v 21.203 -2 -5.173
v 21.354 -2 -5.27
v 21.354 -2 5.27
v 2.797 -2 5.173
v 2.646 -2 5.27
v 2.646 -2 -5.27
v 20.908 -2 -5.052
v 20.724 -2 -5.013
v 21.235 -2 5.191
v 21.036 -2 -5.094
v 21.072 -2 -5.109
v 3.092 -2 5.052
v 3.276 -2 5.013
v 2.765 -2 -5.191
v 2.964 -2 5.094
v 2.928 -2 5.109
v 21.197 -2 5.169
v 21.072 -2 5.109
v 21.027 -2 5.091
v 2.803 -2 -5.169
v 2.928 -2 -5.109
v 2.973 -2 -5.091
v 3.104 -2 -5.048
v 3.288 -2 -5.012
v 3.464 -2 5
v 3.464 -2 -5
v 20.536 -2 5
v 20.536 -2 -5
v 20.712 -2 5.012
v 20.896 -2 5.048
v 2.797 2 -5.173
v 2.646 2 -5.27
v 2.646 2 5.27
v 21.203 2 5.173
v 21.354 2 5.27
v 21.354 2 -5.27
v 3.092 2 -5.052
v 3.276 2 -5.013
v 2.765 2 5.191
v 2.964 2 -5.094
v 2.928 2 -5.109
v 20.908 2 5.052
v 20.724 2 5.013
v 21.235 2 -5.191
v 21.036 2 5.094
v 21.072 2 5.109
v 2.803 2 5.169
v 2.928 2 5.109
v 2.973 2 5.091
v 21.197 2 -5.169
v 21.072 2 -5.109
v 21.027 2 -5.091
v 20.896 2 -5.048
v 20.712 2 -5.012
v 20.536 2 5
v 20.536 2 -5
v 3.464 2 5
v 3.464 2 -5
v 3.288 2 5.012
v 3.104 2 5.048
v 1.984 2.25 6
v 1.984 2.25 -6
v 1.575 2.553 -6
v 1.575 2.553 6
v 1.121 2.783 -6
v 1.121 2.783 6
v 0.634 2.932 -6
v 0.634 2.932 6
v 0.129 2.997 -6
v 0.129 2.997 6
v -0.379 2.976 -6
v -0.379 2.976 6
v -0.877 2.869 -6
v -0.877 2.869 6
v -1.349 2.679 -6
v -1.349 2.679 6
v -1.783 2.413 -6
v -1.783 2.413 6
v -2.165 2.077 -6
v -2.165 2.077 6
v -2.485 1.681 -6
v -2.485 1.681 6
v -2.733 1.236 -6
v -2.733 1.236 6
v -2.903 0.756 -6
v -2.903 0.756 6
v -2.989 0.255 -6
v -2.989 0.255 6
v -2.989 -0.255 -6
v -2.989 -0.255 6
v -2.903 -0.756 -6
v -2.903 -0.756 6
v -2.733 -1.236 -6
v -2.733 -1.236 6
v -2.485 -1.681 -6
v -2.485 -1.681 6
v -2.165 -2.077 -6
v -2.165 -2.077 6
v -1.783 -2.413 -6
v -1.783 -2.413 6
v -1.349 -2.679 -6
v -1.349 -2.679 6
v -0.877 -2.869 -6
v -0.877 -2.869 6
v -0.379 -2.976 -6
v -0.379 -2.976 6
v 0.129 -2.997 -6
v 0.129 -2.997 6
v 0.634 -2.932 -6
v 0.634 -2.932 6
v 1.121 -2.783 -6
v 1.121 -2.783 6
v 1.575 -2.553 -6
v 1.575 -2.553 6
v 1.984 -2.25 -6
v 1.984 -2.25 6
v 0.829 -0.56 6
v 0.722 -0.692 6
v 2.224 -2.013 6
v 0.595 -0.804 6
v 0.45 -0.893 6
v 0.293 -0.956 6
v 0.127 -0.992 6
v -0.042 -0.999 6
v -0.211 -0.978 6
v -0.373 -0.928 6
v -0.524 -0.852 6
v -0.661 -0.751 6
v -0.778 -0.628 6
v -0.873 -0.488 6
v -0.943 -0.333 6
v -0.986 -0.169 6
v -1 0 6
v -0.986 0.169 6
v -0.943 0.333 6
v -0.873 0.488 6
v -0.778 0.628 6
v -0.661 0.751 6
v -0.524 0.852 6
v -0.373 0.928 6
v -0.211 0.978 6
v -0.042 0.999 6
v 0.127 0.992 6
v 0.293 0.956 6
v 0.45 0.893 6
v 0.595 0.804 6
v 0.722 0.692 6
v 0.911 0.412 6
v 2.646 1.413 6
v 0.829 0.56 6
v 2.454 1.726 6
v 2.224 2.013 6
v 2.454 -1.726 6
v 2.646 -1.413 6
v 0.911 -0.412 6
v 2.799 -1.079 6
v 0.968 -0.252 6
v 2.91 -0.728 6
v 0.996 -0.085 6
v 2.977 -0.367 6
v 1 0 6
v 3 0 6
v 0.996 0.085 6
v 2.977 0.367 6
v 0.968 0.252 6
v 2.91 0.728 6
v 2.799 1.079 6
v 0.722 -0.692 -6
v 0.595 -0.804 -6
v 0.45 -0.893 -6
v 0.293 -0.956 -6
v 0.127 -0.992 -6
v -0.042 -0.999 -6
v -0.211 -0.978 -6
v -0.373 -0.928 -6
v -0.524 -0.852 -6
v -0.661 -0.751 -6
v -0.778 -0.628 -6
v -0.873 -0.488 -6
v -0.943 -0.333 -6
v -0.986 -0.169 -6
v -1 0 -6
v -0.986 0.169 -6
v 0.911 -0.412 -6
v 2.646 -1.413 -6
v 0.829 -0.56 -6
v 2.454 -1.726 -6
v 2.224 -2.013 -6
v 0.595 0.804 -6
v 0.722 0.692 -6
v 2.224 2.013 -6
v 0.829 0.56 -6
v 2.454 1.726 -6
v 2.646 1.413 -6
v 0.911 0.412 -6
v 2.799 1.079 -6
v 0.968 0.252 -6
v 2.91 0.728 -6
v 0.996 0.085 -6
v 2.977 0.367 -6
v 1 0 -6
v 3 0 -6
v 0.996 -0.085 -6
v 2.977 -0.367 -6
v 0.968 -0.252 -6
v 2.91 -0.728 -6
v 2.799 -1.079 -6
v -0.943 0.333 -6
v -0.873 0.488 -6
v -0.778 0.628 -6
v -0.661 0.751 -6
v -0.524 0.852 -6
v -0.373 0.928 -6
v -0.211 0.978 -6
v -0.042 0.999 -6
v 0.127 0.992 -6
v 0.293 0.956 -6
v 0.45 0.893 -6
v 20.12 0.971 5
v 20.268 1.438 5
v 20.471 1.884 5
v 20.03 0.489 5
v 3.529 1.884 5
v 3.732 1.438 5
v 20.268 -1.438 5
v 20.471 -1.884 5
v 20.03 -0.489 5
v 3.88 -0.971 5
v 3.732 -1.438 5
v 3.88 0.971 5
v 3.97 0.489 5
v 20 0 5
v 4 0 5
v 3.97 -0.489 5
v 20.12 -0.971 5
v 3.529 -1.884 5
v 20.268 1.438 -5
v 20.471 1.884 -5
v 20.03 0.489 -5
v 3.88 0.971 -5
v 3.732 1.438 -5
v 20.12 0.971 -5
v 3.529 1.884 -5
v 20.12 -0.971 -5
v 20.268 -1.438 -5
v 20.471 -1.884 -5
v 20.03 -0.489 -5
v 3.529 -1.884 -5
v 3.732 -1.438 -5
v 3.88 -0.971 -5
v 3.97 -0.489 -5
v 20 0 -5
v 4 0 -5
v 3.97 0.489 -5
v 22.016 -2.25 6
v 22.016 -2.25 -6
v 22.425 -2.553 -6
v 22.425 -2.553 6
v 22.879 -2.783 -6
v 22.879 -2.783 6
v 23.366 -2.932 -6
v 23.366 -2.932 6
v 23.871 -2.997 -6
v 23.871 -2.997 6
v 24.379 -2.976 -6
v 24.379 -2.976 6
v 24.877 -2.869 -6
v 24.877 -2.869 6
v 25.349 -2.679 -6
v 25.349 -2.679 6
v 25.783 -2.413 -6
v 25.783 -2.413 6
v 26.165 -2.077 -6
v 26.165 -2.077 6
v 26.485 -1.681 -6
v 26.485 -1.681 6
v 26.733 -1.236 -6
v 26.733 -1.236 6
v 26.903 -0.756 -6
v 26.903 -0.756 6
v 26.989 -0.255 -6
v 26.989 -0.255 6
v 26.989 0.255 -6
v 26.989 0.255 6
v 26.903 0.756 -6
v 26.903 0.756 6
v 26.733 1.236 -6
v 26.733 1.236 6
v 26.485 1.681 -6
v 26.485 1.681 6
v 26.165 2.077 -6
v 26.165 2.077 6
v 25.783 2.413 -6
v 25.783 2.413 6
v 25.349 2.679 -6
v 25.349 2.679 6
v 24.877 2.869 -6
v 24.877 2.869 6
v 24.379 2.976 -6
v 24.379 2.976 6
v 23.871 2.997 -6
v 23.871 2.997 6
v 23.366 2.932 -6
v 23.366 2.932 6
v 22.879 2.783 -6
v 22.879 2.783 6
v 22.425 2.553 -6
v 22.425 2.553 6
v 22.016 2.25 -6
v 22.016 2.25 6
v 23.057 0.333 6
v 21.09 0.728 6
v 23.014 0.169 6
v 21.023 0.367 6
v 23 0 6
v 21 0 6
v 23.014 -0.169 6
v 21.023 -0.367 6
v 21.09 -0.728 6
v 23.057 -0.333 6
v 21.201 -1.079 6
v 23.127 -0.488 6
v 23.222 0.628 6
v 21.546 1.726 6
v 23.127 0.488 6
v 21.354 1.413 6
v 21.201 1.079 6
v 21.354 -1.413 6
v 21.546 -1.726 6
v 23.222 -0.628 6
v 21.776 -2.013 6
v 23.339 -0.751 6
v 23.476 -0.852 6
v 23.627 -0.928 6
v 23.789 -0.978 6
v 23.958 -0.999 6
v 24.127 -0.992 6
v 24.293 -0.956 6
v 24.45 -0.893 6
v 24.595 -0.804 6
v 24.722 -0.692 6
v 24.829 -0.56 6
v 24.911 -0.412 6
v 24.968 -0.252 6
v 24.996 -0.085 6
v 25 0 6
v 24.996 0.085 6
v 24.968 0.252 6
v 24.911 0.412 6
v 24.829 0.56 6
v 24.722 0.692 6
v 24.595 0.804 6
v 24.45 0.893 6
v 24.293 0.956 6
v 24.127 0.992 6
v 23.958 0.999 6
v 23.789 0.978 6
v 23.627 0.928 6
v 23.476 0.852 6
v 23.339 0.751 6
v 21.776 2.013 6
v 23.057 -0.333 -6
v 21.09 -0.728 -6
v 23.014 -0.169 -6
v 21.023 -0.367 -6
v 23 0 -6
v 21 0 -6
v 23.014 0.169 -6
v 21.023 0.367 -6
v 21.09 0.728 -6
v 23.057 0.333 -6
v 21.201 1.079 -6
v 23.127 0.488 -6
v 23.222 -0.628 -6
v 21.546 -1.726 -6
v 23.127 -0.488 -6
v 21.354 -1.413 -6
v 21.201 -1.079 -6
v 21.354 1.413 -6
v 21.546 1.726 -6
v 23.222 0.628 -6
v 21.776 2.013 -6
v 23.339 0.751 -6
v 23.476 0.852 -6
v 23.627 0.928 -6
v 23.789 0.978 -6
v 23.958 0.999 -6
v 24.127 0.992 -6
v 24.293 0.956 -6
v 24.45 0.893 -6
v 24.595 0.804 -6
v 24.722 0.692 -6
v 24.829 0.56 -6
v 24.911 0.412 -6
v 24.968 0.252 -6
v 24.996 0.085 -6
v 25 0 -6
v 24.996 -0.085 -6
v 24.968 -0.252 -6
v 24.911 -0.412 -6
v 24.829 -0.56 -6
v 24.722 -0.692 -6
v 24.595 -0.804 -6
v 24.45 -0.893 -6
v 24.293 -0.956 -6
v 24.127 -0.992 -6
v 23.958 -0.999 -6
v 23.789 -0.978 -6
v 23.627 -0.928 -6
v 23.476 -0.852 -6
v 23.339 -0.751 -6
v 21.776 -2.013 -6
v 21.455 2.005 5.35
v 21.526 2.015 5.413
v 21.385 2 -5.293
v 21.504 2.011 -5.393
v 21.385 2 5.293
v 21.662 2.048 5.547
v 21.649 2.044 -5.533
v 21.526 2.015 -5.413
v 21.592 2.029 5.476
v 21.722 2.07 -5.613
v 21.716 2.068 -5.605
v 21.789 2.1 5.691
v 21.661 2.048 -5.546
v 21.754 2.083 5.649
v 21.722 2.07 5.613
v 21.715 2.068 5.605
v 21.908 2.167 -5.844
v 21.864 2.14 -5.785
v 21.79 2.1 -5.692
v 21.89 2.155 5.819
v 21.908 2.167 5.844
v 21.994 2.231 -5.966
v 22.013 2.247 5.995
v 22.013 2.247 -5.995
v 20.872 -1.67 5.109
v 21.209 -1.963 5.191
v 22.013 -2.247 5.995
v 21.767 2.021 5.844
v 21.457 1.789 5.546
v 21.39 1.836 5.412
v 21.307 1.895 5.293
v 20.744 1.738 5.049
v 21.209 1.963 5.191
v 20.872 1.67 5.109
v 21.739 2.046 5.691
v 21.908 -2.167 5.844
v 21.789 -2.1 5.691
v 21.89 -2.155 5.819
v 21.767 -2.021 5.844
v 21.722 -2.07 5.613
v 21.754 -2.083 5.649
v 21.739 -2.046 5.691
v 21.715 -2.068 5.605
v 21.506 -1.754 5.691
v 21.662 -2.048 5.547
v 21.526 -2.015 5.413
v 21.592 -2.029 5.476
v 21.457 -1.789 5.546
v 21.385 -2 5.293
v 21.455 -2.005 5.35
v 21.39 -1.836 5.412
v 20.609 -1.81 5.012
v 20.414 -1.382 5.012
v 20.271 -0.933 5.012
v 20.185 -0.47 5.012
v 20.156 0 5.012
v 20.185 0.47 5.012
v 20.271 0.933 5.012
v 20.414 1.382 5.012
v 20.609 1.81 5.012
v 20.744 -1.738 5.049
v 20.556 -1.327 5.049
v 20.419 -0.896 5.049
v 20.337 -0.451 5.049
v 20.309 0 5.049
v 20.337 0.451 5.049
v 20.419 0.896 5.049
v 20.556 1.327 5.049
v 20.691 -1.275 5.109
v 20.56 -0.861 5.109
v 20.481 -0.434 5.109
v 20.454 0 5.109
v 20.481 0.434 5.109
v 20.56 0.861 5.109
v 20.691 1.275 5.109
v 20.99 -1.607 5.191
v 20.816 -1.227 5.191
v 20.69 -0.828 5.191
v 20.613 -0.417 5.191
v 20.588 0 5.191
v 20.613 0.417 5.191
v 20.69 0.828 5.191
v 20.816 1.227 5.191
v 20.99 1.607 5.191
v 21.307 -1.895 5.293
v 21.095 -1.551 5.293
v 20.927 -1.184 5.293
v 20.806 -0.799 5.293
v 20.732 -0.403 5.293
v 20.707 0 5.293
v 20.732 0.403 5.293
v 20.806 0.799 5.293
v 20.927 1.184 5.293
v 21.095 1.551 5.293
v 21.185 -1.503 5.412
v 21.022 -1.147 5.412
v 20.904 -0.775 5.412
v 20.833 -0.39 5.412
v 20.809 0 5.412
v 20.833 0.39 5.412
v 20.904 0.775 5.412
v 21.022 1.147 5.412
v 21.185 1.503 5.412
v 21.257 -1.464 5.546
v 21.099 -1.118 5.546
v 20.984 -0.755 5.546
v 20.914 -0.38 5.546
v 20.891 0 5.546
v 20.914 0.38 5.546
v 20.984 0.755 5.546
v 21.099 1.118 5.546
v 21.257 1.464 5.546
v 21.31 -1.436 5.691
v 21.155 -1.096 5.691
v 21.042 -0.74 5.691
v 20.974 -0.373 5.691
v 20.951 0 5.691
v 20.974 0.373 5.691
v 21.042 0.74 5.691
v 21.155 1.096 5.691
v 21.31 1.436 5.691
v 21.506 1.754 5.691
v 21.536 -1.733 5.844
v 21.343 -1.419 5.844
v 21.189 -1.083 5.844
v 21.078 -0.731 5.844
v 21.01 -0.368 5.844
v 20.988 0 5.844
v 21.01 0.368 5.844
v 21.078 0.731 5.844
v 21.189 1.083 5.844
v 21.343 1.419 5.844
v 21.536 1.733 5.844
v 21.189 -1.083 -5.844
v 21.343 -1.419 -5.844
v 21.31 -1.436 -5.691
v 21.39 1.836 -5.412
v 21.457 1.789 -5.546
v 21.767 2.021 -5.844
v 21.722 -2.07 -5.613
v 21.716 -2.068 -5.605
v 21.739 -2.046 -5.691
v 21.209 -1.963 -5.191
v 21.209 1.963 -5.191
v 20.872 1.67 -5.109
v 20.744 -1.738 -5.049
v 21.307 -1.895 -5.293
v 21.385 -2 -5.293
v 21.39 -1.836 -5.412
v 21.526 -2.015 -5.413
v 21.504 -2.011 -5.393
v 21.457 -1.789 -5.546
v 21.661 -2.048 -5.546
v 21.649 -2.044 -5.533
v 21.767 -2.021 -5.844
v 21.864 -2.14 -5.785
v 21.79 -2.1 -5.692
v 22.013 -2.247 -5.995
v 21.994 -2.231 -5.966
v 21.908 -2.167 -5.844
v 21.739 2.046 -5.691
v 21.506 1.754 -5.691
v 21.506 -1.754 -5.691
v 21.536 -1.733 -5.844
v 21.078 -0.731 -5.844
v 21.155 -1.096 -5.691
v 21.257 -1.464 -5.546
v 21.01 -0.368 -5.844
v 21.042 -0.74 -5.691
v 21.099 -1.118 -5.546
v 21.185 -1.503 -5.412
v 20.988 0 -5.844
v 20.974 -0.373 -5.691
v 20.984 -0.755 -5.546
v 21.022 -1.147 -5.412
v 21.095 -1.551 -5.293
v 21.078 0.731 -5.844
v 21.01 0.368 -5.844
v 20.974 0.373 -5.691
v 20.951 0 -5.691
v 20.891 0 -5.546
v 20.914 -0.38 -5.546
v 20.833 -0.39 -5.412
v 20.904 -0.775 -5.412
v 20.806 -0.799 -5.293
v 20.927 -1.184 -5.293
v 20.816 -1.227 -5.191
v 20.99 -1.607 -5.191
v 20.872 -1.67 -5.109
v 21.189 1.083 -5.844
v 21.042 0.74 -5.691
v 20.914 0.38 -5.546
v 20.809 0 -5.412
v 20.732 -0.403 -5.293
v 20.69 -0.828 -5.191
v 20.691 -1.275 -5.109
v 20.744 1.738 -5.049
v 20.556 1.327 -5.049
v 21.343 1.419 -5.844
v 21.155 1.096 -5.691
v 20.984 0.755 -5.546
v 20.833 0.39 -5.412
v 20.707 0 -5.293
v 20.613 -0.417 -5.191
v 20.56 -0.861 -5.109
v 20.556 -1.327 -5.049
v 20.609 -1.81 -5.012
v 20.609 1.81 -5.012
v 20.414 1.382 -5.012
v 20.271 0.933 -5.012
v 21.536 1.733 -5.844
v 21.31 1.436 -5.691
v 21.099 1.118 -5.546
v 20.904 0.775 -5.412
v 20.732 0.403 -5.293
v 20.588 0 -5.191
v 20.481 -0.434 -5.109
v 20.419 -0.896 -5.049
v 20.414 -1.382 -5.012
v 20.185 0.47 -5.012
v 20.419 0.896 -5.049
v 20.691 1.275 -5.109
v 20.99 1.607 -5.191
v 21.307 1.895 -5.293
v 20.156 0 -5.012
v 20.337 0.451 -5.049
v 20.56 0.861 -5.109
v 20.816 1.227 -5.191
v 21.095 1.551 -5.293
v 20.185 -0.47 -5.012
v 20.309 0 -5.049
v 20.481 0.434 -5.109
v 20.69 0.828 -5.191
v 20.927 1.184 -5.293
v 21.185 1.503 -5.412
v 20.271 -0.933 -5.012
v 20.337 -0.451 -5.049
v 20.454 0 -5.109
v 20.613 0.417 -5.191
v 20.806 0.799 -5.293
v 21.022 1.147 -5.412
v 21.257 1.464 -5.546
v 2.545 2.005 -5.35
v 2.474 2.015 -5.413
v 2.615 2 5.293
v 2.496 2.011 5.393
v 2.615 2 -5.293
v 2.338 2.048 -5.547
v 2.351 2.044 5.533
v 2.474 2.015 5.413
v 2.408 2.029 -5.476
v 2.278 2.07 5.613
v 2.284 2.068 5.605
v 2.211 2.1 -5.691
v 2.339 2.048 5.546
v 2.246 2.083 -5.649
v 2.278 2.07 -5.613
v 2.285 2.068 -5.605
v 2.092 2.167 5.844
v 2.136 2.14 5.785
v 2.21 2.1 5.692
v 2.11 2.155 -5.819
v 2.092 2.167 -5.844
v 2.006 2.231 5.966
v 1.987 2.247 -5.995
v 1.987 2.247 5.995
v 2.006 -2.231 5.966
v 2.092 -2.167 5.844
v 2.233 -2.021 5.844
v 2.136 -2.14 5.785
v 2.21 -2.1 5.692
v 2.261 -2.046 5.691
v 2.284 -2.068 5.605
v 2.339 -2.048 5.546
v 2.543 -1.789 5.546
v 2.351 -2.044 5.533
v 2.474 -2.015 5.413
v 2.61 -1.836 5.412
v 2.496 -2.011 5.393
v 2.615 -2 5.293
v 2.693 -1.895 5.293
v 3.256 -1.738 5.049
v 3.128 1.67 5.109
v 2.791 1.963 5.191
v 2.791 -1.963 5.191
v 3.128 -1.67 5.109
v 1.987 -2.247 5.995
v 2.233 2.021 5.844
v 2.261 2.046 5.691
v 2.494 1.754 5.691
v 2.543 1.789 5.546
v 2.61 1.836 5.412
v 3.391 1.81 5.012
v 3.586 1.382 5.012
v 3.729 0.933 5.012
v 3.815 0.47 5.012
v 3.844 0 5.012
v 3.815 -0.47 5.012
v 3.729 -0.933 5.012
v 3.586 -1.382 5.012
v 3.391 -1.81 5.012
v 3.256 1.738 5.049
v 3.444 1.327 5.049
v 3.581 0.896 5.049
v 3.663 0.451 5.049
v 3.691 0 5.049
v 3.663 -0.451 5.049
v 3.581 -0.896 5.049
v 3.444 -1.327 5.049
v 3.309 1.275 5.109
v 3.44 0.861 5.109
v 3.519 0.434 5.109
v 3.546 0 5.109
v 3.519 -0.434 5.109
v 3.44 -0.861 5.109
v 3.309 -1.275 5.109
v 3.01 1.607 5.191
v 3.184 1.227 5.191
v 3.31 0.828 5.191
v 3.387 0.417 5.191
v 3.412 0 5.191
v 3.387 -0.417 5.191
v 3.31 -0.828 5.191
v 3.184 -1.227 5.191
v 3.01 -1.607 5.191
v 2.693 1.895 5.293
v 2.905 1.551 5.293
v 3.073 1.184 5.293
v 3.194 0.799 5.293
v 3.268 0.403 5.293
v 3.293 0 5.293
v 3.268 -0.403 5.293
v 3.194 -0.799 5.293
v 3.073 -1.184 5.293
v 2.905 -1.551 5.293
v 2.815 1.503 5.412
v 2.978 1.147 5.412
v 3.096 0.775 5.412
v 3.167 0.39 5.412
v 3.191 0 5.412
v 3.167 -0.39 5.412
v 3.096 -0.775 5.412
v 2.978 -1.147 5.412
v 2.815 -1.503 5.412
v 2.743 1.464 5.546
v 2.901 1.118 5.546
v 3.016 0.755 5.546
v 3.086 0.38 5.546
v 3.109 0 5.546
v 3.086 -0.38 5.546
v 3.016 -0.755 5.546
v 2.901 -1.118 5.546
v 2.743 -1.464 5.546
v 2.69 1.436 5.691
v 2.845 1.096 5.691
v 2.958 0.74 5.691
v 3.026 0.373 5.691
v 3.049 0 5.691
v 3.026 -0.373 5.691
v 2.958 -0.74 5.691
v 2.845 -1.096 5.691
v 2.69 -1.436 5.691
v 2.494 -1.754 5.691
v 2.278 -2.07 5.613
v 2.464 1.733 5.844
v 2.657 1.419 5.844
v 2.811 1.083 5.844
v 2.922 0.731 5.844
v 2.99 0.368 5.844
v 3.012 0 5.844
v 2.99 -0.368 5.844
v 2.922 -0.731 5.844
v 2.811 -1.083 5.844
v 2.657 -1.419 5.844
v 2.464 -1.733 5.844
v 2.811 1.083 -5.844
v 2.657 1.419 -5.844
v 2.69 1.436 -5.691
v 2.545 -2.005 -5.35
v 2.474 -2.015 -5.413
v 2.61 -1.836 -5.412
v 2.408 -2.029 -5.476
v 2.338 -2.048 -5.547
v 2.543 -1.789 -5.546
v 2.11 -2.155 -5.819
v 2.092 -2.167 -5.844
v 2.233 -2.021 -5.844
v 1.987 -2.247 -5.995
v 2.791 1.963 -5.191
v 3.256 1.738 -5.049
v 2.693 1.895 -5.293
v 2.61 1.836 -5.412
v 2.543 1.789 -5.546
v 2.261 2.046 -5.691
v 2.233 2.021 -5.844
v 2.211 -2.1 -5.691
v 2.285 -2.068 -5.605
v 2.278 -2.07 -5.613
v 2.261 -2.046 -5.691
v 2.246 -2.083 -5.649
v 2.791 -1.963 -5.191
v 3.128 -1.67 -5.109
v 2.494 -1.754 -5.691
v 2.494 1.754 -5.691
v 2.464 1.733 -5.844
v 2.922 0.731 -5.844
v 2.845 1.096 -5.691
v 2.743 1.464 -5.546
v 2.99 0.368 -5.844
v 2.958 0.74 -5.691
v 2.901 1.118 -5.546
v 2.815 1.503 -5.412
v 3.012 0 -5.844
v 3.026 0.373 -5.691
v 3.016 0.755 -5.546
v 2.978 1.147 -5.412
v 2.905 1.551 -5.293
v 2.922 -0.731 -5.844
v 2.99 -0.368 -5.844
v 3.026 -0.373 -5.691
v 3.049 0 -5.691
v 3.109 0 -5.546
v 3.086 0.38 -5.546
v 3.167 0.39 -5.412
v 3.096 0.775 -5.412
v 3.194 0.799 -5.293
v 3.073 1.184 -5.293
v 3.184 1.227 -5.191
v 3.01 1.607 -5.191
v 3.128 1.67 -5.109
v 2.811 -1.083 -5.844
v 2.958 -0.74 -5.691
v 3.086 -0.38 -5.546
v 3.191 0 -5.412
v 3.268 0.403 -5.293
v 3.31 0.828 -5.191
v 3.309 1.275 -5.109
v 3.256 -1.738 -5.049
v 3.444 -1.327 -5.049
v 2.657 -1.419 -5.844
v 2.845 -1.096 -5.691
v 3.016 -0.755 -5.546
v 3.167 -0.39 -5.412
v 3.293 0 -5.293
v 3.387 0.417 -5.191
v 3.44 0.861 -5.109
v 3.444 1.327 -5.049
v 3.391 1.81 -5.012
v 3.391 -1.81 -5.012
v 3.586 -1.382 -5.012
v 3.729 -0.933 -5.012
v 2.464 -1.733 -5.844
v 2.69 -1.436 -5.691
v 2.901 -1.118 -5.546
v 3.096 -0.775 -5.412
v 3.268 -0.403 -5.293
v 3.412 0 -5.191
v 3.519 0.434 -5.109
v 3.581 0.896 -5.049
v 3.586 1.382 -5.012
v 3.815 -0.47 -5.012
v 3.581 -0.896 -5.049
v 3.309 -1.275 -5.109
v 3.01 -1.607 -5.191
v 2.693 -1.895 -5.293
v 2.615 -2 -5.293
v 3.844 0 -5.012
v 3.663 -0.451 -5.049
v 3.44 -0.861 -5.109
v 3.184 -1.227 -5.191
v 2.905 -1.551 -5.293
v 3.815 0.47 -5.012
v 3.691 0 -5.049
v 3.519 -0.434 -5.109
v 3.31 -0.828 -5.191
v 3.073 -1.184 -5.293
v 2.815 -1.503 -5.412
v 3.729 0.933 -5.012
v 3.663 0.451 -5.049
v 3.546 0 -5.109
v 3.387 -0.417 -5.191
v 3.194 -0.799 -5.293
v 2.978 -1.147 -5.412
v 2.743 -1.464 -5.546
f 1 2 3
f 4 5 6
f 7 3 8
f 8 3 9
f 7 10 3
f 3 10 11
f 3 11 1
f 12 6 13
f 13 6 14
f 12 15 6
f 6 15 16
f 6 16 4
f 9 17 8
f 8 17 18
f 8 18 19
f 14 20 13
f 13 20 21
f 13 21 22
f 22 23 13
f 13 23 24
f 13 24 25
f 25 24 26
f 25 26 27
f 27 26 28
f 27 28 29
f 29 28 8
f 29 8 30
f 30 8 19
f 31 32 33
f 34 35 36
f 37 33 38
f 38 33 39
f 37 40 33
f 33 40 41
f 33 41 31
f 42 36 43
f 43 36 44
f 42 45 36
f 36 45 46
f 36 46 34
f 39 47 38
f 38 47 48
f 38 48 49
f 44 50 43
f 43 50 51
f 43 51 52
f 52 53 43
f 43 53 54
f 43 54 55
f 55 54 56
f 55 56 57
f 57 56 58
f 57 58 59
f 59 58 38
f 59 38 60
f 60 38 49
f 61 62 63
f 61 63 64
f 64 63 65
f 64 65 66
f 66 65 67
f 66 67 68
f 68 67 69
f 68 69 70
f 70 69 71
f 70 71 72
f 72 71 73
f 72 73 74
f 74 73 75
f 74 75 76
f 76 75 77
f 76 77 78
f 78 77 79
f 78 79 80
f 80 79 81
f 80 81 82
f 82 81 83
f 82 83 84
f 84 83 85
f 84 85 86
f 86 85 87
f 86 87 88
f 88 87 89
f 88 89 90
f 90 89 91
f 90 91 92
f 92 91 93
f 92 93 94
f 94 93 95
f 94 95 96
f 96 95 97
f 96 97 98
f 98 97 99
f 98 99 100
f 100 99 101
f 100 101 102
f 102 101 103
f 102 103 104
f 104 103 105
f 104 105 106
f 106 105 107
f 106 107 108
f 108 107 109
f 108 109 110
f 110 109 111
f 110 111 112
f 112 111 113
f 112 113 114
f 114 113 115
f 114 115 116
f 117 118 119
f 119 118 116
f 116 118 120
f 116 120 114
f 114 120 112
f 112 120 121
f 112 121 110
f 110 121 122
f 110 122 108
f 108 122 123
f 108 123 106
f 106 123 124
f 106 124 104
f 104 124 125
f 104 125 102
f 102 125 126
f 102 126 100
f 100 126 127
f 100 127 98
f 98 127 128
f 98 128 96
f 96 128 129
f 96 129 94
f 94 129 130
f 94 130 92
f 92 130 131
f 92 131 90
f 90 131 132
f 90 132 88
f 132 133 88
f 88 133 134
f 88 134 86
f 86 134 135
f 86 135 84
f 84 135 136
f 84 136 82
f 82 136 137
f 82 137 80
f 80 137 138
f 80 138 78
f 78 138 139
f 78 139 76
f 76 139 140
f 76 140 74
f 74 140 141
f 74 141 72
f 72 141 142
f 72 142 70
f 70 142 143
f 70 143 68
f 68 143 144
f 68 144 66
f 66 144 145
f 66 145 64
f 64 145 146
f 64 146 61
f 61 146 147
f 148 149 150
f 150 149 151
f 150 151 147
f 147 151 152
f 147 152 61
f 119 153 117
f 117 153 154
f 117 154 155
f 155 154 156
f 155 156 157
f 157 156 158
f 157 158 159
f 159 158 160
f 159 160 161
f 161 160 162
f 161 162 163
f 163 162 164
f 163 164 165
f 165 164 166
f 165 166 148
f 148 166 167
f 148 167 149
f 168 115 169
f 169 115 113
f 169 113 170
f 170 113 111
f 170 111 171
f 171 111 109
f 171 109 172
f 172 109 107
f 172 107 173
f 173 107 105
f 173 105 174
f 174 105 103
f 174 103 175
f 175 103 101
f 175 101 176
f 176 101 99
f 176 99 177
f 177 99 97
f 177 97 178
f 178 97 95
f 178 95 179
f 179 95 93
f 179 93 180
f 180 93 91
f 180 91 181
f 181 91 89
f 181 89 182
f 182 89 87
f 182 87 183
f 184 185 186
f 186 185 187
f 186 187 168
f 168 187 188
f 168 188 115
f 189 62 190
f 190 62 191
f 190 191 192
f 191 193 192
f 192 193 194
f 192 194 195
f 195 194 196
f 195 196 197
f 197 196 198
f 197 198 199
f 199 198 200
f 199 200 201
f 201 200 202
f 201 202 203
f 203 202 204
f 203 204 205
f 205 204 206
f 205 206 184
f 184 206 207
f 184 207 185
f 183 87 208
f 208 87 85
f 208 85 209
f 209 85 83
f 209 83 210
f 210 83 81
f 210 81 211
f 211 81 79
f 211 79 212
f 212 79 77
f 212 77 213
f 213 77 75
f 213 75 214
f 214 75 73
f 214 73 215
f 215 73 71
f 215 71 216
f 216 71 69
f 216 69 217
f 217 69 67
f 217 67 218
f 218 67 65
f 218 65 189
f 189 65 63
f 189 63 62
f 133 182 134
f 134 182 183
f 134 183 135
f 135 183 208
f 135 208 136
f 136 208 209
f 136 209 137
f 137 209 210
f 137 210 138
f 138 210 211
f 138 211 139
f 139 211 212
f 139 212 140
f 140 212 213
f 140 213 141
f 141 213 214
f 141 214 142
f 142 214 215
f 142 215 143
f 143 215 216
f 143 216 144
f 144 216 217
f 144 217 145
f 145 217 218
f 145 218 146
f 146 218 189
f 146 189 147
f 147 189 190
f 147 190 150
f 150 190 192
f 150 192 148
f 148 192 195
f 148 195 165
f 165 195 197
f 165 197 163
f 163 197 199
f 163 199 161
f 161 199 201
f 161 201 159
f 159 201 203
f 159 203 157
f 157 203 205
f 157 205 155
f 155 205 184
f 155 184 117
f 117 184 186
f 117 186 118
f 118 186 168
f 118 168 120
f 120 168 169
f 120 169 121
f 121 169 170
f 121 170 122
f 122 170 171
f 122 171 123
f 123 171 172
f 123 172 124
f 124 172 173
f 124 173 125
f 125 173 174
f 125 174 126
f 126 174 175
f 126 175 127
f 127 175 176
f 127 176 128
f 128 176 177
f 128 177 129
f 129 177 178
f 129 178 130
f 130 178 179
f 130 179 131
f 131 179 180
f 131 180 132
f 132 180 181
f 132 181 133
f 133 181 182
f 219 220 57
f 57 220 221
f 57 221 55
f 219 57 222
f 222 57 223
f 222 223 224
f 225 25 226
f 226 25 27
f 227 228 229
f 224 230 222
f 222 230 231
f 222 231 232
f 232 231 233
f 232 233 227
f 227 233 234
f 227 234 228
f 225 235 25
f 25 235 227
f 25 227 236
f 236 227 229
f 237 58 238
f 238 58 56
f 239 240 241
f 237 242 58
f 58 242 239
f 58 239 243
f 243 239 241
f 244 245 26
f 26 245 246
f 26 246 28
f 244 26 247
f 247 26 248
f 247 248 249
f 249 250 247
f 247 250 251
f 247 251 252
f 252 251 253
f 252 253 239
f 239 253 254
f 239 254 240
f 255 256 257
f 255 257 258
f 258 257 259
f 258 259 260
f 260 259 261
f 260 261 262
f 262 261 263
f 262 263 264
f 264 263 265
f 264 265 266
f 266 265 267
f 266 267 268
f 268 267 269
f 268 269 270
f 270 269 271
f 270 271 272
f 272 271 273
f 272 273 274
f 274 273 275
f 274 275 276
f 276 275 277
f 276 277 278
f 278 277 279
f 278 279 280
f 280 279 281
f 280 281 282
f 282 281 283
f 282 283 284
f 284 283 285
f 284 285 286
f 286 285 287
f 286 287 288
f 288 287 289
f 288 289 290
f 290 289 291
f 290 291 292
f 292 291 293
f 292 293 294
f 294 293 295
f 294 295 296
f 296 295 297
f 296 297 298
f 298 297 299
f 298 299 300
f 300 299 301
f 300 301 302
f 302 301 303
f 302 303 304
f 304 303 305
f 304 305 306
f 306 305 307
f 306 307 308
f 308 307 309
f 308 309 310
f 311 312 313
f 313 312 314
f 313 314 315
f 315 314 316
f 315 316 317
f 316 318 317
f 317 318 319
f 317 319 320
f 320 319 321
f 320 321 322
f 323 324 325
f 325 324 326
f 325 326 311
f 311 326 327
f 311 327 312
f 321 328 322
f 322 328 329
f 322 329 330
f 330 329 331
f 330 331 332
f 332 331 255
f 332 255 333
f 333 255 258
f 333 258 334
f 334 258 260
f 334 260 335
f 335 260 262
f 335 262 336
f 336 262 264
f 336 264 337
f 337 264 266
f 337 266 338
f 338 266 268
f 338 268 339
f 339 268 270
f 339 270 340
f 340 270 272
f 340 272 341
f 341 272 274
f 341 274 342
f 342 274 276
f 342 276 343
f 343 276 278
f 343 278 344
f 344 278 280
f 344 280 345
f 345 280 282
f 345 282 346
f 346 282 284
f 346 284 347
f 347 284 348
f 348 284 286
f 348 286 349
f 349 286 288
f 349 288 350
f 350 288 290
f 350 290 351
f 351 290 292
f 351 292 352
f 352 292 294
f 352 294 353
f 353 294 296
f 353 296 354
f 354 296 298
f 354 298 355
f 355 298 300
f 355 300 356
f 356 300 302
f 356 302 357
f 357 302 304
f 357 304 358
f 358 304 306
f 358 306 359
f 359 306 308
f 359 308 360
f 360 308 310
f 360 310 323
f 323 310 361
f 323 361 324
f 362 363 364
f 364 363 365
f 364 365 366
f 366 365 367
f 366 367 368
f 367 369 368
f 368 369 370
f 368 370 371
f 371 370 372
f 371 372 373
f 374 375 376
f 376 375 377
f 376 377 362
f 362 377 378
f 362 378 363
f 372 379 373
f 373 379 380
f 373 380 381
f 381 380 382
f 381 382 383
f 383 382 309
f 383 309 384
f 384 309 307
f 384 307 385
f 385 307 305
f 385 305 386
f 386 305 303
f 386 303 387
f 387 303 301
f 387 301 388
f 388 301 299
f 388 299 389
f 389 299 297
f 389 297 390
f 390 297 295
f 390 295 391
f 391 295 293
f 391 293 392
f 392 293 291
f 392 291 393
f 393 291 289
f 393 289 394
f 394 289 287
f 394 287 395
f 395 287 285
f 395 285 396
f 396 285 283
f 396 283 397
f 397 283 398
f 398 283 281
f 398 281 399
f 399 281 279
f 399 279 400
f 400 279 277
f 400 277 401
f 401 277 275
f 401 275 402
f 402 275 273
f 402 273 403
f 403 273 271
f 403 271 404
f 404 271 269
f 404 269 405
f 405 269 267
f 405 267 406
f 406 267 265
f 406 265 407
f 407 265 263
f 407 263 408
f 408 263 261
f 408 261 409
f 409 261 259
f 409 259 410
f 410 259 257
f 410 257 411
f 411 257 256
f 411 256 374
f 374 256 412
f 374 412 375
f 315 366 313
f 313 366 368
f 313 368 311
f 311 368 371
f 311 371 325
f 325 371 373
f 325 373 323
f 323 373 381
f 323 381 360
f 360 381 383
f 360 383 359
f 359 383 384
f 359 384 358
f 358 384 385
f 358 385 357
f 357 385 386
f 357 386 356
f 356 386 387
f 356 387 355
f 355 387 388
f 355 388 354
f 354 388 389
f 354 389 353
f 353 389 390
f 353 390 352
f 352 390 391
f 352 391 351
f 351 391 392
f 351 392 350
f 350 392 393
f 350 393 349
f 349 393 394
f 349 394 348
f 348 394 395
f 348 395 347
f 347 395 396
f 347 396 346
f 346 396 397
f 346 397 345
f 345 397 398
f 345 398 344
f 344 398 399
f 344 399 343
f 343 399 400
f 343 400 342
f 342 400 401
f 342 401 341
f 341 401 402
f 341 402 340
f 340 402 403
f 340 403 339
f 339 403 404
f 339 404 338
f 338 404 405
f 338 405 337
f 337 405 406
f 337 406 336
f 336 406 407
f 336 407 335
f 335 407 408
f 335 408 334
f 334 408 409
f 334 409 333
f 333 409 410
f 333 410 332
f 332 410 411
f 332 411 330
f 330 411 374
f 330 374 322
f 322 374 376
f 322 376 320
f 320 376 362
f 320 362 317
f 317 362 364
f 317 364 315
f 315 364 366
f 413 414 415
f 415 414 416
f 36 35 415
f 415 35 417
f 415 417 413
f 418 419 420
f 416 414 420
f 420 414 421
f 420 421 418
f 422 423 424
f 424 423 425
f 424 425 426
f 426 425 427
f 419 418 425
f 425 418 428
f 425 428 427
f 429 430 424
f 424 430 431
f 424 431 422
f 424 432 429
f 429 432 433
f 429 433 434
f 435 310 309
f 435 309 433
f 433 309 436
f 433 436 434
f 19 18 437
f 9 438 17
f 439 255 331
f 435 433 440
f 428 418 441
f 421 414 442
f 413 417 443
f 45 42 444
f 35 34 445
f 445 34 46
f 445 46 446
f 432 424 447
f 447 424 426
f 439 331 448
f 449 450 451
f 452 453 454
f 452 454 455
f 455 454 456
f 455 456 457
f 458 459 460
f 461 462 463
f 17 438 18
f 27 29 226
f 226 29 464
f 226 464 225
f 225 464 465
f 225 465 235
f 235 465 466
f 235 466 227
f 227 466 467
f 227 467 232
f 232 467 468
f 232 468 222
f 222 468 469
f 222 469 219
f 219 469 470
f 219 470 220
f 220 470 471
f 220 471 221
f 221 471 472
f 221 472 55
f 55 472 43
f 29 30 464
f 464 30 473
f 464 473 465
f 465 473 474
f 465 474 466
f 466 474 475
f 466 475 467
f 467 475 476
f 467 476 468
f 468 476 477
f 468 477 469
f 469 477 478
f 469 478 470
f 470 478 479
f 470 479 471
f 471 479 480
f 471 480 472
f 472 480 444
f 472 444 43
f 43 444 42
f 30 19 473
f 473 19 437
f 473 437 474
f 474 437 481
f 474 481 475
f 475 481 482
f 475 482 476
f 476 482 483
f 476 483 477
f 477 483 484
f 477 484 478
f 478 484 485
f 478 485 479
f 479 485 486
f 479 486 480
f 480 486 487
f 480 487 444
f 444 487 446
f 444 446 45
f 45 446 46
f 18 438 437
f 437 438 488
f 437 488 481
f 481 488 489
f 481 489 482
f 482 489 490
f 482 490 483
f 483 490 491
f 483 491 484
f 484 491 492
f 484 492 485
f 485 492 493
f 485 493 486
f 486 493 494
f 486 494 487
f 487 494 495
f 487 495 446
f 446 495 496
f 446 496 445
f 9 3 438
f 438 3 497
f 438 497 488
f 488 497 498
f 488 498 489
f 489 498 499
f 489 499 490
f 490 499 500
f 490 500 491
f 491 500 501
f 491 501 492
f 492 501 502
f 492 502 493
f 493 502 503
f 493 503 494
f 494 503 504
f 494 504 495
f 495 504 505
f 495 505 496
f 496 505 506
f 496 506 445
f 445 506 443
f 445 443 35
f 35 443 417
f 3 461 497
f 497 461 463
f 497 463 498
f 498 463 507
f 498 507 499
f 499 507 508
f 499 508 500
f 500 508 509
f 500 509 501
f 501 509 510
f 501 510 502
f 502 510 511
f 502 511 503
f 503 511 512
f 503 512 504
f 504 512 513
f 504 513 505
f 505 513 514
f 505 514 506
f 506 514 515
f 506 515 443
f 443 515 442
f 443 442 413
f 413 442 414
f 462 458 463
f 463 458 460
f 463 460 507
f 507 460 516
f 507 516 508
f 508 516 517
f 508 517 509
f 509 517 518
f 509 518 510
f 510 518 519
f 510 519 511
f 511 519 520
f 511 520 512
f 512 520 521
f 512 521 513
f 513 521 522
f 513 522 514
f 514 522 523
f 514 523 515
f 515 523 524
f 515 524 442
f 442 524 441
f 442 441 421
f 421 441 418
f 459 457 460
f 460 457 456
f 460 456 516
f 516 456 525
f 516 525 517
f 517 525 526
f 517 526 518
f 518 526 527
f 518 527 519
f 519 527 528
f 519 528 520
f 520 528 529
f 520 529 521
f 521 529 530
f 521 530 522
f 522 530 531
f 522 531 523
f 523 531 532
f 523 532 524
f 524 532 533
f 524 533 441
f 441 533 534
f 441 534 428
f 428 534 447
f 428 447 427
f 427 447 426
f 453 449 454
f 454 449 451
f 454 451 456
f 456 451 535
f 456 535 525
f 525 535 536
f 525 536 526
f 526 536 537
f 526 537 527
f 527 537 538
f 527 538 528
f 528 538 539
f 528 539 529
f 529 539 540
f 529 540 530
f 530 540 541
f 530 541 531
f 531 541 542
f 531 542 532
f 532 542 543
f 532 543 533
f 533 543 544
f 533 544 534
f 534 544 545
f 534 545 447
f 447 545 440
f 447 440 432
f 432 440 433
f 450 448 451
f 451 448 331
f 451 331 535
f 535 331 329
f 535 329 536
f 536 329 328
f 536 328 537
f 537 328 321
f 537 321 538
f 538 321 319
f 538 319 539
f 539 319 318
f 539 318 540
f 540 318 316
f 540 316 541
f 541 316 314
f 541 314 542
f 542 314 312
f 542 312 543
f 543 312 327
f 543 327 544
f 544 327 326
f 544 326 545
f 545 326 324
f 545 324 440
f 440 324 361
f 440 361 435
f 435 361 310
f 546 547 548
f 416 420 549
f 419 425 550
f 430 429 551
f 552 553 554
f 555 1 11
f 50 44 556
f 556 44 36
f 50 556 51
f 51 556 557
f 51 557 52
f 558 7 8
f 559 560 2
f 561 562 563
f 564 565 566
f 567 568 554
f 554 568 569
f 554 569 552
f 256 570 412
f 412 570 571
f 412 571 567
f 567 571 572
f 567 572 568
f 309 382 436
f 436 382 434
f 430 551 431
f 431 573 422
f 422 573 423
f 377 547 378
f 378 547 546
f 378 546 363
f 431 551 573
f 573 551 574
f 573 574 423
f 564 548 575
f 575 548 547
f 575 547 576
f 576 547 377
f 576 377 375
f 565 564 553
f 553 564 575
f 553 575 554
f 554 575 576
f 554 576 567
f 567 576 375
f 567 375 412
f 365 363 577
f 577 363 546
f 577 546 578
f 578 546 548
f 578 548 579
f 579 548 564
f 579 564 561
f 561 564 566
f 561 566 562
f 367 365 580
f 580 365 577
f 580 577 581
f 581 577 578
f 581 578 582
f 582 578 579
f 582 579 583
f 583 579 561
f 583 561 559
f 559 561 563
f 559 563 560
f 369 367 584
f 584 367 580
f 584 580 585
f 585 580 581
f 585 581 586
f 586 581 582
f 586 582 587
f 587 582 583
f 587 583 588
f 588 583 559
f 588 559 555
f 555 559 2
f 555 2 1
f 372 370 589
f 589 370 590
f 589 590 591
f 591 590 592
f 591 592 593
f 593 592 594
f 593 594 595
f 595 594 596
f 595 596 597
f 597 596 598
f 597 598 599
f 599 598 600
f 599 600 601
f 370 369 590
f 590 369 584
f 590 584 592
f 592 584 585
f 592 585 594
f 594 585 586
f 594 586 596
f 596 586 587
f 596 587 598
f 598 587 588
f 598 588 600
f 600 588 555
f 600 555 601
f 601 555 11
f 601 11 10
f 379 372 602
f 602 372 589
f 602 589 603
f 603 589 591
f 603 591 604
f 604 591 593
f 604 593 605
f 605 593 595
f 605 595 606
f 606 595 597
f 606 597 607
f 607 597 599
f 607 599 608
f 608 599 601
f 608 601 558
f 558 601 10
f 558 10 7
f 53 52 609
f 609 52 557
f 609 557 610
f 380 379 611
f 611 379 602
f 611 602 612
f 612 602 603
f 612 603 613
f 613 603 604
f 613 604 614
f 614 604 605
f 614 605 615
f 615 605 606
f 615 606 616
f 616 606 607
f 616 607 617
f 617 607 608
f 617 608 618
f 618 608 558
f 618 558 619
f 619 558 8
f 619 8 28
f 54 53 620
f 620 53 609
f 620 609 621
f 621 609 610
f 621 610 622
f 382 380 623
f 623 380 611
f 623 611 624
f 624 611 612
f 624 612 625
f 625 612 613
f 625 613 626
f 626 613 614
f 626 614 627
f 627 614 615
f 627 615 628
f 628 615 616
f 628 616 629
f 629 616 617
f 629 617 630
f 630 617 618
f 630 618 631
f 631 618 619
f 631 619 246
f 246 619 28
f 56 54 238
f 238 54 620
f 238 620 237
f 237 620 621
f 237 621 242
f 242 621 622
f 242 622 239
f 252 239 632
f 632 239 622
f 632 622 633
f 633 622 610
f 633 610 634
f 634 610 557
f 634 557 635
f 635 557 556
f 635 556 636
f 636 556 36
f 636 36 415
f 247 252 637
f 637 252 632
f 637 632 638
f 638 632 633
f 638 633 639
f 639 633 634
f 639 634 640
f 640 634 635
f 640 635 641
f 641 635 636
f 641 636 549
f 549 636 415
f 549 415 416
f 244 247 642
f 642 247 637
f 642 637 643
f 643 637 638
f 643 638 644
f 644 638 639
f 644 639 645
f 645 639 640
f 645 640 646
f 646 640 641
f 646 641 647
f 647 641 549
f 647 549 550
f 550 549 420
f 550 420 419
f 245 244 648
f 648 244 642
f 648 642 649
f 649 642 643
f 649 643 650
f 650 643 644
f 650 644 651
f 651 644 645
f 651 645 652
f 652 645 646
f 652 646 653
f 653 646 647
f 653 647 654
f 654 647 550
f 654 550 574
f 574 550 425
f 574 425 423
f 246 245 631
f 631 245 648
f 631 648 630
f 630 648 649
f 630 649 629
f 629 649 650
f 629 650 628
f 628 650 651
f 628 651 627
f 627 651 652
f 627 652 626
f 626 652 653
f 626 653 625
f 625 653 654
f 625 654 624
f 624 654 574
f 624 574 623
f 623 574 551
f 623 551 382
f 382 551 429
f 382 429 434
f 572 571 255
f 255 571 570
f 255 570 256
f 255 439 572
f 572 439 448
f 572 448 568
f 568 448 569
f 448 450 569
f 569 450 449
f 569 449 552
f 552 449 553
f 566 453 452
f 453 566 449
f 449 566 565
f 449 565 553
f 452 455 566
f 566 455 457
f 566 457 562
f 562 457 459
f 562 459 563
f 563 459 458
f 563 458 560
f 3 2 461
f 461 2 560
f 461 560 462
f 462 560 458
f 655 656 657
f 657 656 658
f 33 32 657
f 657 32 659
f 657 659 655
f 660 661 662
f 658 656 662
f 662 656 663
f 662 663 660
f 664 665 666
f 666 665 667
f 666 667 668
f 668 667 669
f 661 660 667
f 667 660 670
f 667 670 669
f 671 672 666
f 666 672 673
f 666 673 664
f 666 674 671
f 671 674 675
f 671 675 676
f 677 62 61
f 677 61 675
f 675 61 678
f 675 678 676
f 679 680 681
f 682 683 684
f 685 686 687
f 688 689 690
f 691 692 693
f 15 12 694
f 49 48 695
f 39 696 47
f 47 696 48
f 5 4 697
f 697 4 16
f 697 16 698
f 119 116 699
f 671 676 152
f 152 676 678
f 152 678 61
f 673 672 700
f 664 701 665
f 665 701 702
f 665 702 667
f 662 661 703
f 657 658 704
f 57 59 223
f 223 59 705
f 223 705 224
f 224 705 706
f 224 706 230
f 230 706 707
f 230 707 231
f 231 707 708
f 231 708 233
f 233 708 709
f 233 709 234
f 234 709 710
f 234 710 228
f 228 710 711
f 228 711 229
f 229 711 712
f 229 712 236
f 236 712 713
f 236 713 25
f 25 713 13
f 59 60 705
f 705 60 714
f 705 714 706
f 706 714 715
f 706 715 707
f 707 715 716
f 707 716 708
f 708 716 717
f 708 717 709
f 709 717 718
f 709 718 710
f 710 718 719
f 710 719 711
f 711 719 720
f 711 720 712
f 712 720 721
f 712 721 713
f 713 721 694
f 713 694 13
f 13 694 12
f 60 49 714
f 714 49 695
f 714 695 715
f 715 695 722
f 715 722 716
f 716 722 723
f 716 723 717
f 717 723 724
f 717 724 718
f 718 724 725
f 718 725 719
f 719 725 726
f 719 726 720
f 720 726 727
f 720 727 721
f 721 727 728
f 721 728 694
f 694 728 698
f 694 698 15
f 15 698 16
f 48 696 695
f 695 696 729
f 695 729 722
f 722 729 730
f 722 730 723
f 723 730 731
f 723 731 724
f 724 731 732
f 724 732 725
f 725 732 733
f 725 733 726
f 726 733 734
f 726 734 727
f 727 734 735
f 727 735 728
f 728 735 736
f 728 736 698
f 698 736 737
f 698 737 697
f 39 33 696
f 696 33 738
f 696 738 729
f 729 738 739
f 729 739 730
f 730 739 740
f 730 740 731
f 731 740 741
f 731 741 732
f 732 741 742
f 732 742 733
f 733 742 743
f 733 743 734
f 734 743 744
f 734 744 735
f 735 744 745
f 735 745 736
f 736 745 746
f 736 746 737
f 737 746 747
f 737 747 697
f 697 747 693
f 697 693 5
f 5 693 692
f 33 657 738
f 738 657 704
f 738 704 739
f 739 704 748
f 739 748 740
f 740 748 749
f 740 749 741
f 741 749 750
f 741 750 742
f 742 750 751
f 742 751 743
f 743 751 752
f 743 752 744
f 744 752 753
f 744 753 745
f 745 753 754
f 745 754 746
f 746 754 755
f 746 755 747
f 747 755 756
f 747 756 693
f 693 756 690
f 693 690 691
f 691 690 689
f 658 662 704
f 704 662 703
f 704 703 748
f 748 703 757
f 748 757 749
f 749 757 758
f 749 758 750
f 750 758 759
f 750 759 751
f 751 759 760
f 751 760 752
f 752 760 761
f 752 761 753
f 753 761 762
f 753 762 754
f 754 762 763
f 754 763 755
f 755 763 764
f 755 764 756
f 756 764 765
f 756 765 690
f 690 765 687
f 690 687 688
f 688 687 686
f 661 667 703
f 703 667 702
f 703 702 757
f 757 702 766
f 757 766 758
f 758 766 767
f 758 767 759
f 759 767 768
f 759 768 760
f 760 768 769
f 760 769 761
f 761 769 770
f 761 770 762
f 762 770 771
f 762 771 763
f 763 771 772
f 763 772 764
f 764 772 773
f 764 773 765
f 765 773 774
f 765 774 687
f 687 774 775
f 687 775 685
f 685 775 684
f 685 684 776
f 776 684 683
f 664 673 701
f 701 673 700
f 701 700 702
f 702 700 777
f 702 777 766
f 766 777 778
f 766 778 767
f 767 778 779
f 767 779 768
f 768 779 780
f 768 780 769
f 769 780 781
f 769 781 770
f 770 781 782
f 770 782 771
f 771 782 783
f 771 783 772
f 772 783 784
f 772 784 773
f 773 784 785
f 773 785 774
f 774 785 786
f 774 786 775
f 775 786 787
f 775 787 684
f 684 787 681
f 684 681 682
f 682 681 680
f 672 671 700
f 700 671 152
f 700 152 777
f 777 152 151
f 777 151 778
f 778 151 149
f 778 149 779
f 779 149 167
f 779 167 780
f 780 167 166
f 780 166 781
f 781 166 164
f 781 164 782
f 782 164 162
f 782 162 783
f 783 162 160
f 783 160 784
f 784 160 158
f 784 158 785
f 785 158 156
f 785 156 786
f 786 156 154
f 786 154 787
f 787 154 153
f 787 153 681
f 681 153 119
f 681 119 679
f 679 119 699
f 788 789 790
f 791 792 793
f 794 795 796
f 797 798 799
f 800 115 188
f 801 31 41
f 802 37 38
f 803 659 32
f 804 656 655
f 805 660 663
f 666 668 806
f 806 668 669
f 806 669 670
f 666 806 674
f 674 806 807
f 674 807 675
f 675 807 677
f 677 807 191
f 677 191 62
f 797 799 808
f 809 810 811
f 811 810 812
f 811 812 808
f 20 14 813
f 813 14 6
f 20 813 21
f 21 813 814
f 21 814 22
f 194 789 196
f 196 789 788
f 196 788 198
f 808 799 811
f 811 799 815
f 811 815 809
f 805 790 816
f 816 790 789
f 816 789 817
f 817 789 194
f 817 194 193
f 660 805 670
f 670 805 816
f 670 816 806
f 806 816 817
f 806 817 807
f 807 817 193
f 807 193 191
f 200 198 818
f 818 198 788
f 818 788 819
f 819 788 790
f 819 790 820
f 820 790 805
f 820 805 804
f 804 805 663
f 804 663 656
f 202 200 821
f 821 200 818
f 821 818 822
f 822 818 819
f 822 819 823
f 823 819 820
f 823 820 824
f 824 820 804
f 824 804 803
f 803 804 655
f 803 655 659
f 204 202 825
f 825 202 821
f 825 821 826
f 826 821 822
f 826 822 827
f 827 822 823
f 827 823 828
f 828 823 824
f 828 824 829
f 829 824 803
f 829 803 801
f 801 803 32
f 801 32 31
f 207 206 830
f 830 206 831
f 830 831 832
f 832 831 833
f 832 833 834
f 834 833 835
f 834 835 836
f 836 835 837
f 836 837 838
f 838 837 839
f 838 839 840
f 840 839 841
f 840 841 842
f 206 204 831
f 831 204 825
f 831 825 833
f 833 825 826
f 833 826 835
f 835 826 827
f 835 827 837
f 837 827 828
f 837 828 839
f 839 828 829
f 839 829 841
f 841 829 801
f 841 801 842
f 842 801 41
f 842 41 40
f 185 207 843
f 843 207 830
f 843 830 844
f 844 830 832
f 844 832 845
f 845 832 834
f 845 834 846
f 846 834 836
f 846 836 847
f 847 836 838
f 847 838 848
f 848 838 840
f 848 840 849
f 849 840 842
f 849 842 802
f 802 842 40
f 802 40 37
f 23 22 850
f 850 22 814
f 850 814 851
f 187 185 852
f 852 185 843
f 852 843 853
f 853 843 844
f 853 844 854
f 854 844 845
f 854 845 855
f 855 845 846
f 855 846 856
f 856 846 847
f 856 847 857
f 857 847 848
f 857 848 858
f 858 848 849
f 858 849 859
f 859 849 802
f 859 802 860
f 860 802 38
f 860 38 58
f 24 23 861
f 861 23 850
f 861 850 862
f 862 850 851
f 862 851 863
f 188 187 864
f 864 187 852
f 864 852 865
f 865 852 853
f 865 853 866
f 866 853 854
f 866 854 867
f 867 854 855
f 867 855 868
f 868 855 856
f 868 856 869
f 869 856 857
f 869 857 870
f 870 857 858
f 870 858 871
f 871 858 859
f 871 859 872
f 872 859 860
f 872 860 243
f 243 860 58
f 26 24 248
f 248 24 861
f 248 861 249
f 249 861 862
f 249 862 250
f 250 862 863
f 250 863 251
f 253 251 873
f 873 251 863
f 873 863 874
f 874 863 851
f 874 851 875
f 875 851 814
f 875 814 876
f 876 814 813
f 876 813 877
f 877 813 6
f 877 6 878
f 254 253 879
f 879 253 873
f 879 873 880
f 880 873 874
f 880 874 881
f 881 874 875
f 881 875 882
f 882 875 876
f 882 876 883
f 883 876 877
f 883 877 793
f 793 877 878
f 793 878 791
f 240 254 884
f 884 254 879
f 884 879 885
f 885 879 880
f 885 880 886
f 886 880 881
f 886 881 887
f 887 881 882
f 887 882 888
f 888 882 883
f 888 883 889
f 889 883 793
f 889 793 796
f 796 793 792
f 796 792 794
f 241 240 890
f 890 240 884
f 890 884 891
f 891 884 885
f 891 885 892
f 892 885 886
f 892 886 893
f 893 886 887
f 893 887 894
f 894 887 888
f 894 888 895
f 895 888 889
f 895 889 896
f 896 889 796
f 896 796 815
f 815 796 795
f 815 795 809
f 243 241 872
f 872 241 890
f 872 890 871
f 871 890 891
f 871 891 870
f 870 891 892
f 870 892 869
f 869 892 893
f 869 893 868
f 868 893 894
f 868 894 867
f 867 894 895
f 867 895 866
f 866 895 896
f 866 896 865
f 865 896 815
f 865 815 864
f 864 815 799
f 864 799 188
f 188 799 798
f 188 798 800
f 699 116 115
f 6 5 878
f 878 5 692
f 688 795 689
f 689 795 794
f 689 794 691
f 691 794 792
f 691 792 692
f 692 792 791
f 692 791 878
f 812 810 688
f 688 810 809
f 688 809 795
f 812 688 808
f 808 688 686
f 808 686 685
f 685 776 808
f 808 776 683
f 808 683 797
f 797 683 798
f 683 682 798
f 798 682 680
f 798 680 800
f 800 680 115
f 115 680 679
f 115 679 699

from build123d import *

# Parameters (mm, degrees)
SKETCH_2_R      = 3
SKETCH_2_R_2    = 1
EXTRUDE_1_DEPTH = 6
EXTRUDE_2_DEPTH = 5
SKETCH_6_R      = 3
SKETCH_6_R_2    = 1
EXTRUDE_3_DEPTH = 6
FILLET_1_R      = 1


with BuildPart() as part:
    # Эскиз2 → Бобышка-Вытянуть1 (new, symmetric)
    with BuildSketch(Plane.XY):
        Circle(SKETCH_2_R)
        Circle(SKETCH_2_R_2, mode=Mode.SUBTRACT)
    extrude(amount=EXTRUDE_1_DEPTH, both=True)

    # Эскиз4 → Бобышка-Вытянуть2 (add, symmetric)
    with BuildSketch(Plane.XY):
        with BuildLine():
            Line((2.236067977, 2), (23, 2))
            Line((23, 2), (23, -2))
            Line((23, -2), (2.236067977, -2))
            ThreePointArc((2.236067977, -2), (3, 0), (2.236067977, 2))
        make_face()
    extrude(amount=EXTRUDE_2_DEPTH, both=True)

    # Эскиз6 → Бобышка-Вытянуть3 (add, symmetric)
    with BuildSketch(Plane.XY):
        with Locations((24, 0)):
            Circle(SKETCH_6_R)
        with Locations((24, 0)):
            Circle(SKETCH_6_R_2, mode=Mode.SUBTRACT)
    extrude(amount=EXTRUDE_3_DEPTH, both=True)

    # Скругление1
    fillet_1_edges = [part.edges().sort_by_distance(p)[0] for p in [
        (2.802517077, 1.070466269, -5),
        (2.236067977, 2, 0),
        (2.236067977, -2, 0),
        (2.802517077, 1.070466269, 5),
        (21, 0, -5),
        (21.763932023, 2, 0),
        (21, 0, 5),
        (21.763932023, -2, 0),
    ]]
    fillet(fillet_1_edges, radius=FILLET_1_R - 0.0001)  # a hair under: the kernel refuses the full size


solid = part.part
